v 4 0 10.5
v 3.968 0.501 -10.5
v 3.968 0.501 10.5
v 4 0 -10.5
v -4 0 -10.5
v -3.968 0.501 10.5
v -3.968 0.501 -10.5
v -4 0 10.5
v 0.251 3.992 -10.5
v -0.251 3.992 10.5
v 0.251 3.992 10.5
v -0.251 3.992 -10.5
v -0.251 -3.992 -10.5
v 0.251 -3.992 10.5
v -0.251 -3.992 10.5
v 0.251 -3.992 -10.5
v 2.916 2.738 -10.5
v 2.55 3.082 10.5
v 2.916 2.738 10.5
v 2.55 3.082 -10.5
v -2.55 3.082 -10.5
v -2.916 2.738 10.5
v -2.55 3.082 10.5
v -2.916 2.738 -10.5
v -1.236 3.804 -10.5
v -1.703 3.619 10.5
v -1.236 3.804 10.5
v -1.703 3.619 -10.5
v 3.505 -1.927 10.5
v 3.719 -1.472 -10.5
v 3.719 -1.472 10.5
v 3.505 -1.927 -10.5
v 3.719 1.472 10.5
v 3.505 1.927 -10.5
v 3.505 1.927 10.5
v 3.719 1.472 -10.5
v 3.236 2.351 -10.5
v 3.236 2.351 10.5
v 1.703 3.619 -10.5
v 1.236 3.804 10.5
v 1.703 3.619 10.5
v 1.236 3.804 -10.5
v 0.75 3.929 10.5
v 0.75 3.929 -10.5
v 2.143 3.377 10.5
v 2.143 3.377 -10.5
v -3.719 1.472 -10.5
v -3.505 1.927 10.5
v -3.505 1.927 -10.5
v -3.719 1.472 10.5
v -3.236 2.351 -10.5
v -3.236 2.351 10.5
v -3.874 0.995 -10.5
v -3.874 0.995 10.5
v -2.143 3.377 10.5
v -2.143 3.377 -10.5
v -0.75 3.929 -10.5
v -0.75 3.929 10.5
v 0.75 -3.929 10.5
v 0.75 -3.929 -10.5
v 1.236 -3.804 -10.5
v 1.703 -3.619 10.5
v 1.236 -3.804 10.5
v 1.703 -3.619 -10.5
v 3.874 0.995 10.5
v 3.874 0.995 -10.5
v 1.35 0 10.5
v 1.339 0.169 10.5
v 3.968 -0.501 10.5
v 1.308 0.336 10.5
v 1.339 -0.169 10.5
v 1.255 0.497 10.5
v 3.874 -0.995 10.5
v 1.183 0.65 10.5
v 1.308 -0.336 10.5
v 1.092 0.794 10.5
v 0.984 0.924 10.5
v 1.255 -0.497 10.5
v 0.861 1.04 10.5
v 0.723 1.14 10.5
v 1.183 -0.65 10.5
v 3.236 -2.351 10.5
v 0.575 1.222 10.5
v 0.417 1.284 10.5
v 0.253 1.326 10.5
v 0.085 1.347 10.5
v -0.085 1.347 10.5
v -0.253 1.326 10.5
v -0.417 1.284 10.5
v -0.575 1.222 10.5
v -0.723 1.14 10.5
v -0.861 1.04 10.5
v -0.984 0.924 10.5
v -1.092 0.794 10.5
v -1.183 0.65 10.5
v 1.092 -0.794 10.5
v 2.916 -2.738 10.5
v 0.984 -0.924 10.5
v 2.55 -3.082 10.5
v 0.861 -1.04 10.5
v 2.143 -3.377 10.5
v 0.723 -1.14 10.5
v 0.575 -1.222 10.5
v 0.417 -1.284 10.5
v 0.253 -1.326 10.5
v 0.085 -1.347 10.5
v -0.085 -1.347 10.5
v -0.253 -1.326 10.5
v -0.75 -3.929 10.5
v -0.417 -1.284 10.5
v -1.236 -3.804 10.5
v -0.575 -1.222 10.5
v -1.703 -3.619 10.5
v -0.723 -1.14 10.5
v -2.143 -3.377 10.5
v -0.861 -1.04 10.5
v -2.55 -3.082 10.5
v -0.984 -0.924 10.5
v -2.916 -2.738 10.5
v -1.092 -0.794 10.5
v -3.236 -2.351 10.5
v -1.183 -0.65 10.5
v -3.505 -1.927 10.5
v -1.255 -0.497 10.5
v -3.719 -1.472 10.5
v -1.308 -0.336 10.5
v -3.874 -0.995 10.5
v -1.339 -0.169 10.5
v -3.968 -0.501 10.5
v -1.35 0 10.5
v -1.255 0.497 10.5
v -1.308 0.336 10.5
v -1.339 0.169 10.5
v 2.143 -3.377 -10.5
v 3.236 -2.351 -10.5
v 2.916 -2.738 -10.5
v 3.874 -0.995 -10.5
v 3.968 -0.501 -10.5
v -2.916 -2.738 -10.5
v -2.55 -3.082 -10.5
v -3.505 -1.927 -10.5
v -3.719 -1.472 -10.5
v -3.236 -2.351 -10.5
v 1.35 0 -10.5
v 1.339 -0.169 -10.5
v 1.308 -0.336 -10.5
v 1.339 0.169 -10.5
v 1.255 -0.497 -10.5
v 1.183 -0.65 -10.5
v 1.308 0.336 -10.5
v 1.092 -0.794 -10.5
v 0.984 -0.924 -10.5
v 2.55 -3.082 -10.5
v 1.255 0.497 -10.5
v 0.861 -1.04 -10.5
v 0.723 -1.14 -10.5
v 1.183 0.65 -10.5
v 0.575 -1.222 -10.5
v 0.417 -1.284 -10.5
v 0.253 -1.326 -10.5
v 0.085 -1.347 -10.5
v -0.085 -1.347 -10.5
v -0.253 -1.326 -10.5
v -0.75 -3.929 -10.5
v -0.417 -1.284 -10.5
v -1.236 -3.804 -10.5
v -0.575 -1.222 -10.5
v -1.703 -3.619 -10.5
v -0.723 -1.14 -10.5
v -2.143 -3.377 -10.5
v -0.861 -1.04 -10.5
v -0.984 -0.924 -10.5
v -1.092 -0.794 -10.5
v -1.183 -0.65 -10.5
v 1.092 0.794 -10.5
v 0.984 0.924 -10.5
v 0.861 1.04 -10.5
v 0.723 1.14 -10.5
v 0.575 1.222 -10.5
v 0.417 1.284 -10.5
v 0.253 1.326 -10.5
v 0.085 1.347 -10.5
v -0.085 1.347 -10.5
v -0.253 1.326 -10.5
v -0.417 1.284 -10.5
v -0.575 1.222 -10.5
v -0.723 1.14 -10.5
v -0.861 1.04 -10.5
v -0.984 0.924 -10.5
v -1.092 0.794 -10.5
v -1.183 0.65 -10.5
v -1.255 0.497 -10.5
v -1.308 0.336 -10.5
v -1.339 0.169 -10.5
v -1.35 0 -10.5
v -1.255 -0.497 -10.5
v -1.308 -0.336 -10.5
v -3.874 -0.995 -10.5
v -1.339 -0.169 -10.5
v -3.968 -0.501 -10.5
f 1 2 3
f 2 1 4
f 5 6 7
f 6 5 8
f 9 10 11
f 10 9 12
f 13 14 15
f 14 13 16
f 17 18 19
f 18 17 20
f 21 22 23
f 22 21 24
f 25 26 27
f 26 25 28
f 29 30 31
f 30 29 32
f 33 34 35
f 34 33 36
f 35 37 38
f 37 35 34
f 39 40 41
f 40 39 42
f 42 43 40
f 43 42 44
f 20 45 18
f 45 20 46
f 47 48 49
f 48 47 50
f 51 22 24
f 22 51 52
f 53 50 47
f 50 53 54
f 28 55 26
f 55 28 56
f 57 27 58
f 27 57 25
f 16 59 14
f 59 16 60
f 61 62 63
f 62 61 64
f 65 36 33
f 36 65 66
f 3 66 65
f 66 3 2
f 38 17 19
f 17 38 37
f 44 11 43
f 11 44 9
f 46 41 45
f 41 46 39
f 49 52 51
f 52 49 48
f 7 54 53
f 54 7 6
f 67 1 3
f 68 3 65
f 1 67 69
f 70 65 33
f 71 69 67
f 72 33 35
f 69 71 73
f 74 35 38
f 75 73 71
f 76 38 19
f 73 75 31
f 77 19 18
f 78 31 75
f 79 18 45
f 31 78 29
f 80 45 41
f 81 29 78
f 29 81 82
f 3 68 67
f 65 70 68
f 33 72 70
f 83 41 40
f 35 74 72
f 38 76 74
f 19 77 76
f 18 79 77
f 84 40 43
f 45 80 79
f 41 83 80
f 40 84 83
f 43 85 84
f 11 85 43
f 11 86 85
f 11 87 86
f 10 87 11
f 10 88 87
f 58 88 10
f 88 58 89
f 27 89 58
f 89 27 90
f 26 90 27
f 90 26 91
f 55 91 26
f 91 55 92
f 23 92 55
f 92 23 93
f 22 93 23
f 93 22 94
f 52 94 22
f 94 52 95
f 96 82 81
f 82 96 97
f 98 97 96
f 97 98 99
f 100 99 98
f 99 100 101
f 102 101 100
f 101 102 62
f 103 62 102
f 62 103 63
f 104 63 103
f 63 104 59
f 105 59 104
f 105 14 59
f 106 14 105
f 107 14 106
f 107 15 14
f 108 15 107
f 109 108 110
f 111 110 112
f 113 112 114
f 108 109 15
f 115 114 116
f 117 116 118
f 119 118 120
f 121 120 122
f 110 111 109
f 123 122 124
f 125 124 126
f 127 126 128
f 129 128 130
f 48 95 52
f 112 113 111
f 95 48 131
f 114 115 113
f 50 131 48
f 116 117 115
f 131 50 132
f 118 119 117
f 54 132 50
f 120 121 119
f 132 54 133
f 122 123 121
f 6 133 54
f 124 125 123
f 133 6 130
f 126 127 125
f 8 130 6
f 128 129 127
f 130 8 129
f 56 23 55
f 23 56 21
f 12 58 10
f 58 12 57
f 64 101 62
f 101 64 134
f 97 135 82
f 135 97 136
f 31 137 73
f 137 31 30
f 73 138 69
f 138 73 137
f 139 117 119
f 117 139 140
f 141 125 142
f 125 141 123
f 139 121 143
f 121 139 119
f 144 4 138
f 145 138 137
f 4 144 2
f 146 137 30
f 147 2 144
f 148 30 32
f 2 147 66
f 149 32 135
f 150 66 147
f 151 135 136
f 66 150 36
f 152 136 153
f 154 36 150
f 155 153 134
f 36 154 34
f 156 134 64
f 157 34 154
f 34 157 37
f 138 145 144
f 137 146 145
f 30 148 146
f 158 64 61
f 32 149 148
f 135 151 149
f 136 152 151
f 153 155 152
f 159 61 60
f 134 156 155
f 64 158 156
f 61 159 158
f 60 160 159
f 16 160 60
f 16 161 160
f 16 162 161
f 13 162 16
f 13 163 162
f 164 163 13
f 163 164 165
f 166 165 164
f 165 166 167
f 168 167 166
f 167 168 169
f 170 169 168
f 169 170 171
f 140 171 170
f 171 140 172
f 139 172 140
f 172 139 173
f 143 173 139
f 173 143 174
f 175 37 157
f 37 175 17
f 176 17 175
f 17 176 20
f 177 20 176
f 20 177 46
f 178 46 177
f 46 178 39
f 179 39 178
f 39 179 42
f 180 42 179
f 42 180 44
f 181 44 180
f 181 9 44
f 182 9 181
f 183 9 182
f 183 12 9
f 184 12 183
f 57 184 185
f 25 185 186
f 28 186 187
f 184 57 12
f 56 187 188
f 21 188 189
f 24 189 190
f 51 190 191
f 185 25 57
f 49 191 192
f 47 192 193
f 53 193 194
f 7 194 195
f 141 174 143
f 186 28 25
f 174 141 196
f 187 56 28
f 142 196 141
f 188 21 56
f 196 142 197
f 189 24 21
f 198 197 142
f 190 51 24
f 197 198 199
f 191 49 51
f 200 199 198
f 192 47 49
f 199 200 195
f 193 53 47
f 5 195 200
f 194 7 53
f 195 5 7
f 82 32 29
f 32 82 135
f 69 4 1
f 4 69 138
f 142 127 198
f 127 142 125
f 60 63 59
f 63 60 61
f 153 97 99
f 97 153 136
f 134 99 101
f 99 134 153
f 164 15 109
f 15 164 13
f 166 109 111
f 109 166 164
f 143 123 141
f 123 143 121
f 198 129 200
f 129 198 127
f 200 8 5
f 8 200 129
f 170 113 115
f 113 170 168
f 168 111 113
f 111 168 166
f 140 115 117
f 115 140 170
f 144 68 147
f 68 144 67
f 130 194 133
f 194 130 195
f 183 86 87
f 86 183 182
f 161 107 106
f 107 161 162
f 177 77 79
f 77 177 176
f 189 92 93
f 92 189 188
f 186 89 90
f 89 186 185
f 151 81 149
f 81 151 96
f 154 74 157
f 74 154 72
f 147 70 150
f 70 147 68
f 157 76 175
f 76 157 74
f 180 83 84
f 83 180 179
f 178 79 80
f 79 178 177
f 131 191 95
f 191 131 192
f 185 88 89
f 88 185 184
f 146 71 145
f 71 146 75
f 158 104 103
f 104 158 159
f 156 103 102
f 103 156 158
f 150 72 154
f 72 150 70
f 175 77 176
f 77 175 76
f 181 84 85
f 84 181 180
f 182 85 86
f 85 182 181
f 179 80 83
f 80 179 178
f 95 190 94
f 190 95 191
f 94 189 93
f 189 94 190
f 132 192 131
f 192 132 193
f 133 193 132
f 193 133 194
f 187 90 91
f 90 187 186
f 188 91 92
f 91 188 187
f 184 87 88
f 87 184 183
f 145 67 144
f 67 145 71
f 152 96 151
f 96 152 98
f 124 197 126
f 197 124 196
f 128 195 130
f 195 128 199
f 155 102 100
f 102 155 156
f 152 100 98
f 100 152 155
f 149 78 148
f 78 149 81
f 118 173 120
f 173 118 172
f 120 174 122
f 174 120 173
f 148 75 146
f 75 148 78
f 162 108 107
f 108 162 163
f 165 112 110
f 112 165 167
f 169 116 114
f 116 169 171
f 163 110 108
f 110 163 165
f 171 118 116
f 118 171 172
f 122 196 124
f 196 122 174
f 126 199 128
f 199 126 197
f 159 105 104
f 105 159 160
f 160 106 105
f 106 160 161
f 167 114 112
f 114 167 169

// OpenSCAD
$fn = 50;


difference() {
	union() {
		translate(v = [0, 0, -10.5000000000]) {
			cylinder(h = 21, r = 4.0000000000);
		}
	}
	union() {
		translate(v = [0, 0, -100.0000000000]) {
			cylinder(h = 200, r = 1.3500000000);
		}
	}
}
